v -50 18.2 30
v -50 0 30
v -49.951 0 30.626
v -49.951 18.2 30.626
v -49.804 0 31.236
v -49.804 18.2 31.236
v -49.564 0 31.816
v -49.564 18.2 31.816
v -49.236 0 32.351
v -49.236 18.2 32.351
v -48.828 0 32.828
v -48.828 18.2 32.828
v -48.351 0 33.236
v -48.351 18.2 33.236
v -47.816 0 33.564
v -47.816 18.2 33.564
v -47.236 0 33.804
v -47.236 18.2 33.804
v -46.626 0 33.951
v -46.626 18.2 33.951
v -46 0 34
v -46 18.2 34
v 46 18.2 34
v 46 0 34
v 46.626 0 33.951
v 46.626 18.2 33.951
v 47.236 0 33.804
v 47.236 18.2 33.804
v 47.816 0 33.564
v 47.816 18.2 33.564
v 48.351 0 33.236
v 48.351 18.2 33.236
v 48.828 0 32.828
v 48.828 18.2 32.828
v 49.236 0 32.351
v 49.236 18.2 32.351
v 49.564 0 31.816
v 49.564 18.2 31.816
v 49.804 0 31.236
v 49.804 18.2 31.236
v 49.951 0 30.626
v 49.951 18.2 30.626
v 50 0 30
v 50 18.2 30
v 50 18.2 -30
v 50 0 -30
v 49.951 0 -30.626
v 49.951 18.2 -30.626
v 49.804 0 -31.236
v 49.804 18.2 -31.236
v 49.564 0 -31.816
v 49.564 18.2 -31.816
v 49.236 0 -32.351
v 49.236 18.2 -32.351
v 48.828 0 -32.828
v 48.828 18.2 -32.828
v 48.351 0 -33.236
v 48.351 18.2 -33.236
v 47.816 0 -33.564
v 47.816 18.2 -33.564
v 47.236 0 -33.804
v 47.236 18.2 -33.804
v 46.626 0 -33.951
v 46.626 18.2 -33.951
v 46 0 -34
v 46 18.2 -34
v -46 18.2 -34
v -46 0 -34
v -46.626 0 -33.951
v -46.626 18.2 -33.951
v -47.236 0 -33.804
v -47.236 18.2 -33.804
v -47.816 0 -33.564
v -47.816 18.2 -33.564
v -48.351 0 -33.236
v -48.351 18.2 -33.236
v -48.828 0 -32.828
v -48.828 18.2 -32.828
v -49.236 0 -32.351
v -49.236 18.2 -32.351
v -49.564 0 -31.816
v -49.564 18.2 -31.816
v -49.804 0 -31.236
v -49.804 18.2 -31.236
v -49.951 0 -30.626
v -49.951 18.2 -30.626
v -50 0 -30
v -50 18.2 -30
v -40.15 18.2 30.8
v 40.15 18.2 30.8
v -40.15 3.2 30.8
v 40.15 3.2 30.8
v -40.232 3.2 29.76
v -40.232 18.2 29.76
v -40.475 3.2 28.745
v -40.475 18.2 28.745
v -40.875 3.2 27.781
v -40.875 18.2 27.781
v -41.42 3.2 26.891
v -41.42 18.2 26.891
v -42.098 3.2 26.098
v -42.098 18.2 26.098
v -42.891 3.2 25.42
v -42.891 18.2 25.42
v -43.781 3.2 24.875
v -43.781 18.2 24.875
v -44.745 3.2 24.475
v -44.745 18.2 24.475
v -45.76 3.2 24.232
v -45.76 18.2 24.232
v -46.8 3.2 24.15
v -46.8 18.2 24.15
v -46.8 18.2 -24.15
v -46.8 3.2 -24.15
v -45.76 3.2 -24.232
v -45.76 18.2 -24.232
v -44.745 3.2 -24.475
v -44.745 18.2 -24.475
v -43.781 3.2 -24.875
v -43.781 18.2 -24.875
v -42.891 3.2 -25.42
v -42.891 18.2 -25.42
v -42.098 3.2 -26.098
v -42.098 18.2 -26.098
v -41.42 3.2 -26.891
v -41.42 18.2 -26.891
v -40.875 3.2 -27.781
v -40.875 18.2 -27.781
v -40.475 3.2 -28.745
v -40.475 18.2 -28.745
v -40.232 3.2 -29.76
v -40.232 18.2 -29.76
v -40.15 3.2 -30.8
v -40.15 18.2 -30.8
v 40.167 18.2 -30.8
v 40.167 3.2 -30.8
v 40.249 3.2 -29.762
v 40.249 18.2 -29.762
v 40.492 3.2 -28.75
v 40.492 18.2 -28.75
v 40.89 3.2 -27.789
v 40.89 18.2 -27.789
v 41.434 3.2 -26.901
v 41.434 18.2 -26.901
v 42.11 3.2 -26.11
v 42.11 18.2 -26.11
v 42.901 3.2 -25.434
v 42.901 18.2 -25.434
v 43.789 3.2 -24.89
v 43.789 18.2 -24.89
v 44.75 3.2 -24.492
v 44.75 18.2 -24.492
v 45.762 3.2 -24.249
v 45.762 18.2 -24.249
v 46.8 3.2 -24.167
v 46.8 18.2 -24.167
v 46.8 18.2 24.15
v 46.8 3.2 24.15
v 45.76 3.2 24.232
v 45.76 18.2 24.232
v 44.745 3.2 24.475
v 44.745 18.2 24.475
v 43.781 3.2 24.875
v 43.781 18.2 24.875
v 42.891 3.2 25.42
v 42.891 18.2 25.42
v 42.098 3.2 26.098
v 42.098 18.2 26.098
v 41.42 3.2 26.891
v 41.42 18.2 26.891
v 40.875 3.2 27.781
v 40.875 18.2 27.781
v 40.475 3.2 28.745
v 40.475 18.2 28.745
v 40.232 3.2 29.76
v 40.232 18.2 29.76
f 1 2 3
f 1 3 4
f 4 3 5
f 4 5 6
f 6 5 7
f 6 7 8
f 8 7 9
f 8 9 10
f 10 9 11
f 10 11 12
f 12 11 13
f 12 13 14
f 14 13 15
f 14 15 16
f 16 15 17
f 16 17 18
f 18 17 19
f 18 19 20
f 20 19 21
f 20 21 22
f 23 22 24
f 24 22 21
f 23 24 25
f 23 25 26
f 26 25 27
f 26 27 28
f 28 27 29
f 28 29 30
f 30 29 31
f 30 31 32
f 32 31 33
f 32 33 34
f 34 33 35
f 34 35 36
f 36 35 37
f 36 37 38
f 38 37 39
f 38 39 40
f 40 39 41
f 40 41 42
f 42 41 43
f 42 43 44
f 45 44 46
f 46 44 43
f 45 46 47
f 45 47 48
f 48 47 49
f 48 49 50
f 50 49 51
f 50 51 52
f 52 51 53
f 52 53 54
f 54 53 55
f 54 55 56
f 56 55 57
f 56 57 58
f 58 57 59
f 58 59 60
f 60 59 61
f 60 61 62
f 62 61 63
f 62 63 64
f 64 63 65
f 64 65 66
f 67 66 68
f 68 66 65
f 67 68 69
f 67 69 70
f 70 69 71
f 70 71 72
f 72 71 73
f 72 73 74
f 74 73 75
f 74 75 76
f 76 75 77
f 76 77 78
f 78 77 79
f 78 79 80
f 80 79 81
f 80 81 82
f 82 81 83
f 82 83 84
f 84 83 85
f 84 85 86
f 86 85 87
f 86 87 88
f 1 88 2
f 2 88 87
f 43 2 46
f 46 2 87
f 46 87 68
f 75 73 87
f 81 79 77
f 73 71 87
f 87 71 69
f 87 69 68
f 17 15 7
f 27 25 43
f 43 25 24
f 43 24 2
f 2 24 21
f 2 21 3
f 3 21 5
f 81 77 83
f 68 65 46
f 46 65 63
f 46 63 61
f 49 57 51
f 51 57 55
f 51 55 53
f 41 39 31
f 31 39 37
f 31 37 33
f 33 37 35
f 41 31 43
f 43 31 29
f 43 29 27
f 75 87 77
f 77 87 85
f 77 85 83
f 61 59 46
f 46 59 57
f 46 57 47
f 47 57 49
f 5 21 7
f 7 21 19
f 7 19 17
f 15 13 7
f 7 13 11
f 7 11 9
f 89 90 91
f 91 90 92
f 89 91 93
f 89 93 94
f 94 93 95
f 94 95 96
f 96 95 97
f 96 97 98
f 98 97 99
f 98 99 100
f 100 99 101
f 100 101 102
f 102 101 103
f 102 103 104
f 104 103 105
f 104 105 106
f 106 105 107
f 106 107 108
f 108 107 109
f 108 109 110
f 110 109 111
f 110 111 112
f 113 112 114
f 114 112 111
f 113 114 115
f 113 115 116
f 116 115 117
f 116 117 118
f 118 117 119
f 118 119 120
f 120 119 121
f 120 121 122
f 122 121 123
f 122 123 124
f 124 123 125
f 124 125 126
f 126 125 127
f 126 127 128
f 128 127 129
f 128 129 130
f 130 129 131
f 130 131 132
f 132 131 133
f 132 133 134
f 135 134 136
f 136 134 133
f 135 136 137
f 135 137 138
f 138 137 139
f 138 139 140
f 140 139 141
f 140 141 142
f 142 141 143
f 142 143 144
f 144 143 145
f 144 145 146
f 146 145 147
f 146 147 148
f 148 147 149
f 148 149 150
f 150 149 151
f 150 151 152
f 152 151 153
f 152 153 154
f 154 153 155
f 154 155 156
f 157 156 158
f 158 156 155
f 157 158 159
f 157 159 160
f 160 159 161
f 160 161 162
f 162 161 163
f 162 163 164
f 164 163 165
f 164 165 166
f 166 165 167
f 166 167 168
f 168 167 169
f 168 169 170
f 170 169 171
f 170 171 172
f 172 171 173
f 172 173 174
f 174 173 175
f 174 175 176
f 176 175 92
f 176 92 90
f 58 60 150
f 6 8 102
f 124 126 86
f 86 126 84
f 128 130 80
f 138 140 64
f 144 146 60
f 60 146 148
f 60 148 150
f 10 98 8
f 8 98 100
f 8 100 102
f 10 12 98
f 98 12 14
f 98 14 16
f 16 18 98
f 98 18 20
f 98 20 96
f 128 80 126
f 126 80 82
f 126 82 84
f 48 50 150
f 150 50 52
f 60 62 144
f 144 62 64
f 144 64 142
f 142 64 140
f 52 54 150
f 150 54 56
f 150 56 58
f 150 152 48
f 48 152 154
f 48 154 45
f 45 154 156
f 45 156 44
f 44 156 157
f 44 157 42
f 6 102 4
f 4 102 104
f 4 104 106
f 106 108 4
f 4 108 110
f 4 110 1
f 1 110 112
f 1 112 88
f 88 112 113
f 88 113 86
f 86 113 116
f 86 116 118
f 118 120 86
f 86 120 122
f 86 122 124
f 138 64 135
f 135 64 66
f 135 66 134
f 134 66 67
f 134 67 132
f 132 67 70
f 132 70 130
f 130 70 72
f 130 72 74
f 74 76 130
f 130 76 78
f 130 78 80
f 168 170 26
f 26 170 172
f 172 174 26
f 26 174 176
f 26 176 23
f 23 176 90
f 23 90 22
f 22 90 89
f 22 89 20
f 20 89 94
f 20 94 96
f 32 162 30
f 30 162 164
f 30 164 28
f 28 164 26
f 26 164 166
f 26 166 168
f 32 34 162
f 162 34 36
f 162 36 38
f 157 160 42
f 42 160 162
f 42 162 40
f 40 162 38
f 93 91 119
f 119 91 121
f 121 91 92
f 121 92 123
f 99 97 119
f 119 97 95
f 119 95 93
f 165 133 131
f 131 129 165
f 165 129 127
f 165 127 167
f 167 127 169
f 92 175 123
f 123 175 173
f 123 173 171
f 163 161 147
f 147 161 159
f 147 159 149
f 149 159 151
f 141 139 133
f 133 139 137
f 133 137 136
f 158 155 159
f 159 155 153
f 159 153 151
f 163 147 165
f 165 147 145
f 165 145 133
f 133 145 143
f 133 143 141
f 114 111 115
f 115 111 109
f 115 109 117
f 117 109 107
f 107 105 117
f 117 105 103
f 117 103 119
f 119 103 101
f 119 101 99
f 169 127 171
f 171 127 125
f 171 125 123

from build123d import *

# Parameters (mm, degrees)
BOSS_EXTRUDE1_DEPTH = 3.2
BOSS_EXTRUDE2_DEPTH = 15


with BuildPart() as part:
    # Sketch1 → Boss-Extrude1 (new body)
    with BuildSketch(Plane(origin=(0, 0, 0), x_dir=(1, 0, 0), z_dir=(0, 1, 0))):
        with BuildLine():
            Line((-46, -34), (46, -34))
            ThreePointArc((46, -34), (48.828427125, -32.828427125), (50, -30))
            Line((50, -30), (50, 30))
            ThreePointArc((50, 30), (48.828427125, 32.828427125), (46, 34))
            Line((46, 34), (-46, 34))
            ThreePointArc((-46, 34), (-48.828427125, 32.828427125), (-50, 30))
            Line((-50, 30), (-50, -30))
            ThreePointArc((-50, -30), (-48.828427125, -32.828427125), (-46, -34))
        make_face()
    extrude(amount=BOSS_EXTRUDE1_DEPTH)

    # Sketch2 → Boss-Extrude2 (add)
    with BuildSketch(Plane(origin=(0, 3.2, 0), x_dir=(1, 0, 0), z_dir=(0, 1, 0))):
        with BuildLine():
            ThreePointArc((-48.594612634, -33.044336591), (-47.382507439, -33.753488135), (-46, -34))
            Line((-46, -34), (46, -34))
            ThreePointArc((46, -34), (48.828427125, -32.828427125), (50, -30))
            Line((50, -30), (50, 30))
            ThreePointArc((50, 30), (48.828427125, 32.828427125), (46, 34))
            Line((46, 34), (-46, 34))
            ThreePointArc((-46, 34), (-47.382507439, 33.753488135), (-48.594612634, 33.044336591))
            ThreePointArc((-48.594612634, 33.044336591), (-49.631697298, 31.676536529), (-50, 30))
            Line((-50, 30), (-50, -27.196030412))
            Line((-50, -27.196030412), (-50, -30))
            ThreePointArc((-50, -30), (-49.631697298, -31.676536529), (-48.594612634, -33.044336591))
        make_face()
        with BuildLine():
            ThreePointArc((-41.245050157, -27.144178308), (-43.644743612, -24.94621002), (-46.8, -24.15))
            Line((-46.8, -24.15), (-46.8, 24.15))
            ThreePointArc((-46.8, 24.15), (-43.644743612, 24.94621002), (-41.245050157, 27.144178308))
            ThreePointArc((-41.245050157, 27.144178308), (-40.429642221, 28.891848598), (-40.15, 30.8))
            Line((-40.15, 30.8), (40.166928077, 30.8))
            ThreePointArc((40.166928077, 30.8), (40.445858448, 28.896705942), (41.259190701, 27.153484478))
            ThreePointArc((41.259190701, 27.153484478), (43.652775555, 24.961111285), (46.8, 24.166928077))
            Line((46.8, 24.166928077), (46.8, -24.15))
            ThreePointArc((46.8, -24.15), (43.644743612, -24.94621002), (41.245050157, -27.144178308))
            ThreePointArc((41.245050157, -27.144178308), (40.429642221, -28.891848598), (40.15, -30.8))
            Line((40.15, -30.8), (-40.15, -30.8))
            ThreePointArc((-40.15, -30.8), (-40.429642221, -28.891848598), (-41.245050157, -27.144178308))
        make_face(mode=Mode.SUBTRACT)
    extrude(amount=BOSS_EXTRUDE2_DEPTH)


solid = part.part
